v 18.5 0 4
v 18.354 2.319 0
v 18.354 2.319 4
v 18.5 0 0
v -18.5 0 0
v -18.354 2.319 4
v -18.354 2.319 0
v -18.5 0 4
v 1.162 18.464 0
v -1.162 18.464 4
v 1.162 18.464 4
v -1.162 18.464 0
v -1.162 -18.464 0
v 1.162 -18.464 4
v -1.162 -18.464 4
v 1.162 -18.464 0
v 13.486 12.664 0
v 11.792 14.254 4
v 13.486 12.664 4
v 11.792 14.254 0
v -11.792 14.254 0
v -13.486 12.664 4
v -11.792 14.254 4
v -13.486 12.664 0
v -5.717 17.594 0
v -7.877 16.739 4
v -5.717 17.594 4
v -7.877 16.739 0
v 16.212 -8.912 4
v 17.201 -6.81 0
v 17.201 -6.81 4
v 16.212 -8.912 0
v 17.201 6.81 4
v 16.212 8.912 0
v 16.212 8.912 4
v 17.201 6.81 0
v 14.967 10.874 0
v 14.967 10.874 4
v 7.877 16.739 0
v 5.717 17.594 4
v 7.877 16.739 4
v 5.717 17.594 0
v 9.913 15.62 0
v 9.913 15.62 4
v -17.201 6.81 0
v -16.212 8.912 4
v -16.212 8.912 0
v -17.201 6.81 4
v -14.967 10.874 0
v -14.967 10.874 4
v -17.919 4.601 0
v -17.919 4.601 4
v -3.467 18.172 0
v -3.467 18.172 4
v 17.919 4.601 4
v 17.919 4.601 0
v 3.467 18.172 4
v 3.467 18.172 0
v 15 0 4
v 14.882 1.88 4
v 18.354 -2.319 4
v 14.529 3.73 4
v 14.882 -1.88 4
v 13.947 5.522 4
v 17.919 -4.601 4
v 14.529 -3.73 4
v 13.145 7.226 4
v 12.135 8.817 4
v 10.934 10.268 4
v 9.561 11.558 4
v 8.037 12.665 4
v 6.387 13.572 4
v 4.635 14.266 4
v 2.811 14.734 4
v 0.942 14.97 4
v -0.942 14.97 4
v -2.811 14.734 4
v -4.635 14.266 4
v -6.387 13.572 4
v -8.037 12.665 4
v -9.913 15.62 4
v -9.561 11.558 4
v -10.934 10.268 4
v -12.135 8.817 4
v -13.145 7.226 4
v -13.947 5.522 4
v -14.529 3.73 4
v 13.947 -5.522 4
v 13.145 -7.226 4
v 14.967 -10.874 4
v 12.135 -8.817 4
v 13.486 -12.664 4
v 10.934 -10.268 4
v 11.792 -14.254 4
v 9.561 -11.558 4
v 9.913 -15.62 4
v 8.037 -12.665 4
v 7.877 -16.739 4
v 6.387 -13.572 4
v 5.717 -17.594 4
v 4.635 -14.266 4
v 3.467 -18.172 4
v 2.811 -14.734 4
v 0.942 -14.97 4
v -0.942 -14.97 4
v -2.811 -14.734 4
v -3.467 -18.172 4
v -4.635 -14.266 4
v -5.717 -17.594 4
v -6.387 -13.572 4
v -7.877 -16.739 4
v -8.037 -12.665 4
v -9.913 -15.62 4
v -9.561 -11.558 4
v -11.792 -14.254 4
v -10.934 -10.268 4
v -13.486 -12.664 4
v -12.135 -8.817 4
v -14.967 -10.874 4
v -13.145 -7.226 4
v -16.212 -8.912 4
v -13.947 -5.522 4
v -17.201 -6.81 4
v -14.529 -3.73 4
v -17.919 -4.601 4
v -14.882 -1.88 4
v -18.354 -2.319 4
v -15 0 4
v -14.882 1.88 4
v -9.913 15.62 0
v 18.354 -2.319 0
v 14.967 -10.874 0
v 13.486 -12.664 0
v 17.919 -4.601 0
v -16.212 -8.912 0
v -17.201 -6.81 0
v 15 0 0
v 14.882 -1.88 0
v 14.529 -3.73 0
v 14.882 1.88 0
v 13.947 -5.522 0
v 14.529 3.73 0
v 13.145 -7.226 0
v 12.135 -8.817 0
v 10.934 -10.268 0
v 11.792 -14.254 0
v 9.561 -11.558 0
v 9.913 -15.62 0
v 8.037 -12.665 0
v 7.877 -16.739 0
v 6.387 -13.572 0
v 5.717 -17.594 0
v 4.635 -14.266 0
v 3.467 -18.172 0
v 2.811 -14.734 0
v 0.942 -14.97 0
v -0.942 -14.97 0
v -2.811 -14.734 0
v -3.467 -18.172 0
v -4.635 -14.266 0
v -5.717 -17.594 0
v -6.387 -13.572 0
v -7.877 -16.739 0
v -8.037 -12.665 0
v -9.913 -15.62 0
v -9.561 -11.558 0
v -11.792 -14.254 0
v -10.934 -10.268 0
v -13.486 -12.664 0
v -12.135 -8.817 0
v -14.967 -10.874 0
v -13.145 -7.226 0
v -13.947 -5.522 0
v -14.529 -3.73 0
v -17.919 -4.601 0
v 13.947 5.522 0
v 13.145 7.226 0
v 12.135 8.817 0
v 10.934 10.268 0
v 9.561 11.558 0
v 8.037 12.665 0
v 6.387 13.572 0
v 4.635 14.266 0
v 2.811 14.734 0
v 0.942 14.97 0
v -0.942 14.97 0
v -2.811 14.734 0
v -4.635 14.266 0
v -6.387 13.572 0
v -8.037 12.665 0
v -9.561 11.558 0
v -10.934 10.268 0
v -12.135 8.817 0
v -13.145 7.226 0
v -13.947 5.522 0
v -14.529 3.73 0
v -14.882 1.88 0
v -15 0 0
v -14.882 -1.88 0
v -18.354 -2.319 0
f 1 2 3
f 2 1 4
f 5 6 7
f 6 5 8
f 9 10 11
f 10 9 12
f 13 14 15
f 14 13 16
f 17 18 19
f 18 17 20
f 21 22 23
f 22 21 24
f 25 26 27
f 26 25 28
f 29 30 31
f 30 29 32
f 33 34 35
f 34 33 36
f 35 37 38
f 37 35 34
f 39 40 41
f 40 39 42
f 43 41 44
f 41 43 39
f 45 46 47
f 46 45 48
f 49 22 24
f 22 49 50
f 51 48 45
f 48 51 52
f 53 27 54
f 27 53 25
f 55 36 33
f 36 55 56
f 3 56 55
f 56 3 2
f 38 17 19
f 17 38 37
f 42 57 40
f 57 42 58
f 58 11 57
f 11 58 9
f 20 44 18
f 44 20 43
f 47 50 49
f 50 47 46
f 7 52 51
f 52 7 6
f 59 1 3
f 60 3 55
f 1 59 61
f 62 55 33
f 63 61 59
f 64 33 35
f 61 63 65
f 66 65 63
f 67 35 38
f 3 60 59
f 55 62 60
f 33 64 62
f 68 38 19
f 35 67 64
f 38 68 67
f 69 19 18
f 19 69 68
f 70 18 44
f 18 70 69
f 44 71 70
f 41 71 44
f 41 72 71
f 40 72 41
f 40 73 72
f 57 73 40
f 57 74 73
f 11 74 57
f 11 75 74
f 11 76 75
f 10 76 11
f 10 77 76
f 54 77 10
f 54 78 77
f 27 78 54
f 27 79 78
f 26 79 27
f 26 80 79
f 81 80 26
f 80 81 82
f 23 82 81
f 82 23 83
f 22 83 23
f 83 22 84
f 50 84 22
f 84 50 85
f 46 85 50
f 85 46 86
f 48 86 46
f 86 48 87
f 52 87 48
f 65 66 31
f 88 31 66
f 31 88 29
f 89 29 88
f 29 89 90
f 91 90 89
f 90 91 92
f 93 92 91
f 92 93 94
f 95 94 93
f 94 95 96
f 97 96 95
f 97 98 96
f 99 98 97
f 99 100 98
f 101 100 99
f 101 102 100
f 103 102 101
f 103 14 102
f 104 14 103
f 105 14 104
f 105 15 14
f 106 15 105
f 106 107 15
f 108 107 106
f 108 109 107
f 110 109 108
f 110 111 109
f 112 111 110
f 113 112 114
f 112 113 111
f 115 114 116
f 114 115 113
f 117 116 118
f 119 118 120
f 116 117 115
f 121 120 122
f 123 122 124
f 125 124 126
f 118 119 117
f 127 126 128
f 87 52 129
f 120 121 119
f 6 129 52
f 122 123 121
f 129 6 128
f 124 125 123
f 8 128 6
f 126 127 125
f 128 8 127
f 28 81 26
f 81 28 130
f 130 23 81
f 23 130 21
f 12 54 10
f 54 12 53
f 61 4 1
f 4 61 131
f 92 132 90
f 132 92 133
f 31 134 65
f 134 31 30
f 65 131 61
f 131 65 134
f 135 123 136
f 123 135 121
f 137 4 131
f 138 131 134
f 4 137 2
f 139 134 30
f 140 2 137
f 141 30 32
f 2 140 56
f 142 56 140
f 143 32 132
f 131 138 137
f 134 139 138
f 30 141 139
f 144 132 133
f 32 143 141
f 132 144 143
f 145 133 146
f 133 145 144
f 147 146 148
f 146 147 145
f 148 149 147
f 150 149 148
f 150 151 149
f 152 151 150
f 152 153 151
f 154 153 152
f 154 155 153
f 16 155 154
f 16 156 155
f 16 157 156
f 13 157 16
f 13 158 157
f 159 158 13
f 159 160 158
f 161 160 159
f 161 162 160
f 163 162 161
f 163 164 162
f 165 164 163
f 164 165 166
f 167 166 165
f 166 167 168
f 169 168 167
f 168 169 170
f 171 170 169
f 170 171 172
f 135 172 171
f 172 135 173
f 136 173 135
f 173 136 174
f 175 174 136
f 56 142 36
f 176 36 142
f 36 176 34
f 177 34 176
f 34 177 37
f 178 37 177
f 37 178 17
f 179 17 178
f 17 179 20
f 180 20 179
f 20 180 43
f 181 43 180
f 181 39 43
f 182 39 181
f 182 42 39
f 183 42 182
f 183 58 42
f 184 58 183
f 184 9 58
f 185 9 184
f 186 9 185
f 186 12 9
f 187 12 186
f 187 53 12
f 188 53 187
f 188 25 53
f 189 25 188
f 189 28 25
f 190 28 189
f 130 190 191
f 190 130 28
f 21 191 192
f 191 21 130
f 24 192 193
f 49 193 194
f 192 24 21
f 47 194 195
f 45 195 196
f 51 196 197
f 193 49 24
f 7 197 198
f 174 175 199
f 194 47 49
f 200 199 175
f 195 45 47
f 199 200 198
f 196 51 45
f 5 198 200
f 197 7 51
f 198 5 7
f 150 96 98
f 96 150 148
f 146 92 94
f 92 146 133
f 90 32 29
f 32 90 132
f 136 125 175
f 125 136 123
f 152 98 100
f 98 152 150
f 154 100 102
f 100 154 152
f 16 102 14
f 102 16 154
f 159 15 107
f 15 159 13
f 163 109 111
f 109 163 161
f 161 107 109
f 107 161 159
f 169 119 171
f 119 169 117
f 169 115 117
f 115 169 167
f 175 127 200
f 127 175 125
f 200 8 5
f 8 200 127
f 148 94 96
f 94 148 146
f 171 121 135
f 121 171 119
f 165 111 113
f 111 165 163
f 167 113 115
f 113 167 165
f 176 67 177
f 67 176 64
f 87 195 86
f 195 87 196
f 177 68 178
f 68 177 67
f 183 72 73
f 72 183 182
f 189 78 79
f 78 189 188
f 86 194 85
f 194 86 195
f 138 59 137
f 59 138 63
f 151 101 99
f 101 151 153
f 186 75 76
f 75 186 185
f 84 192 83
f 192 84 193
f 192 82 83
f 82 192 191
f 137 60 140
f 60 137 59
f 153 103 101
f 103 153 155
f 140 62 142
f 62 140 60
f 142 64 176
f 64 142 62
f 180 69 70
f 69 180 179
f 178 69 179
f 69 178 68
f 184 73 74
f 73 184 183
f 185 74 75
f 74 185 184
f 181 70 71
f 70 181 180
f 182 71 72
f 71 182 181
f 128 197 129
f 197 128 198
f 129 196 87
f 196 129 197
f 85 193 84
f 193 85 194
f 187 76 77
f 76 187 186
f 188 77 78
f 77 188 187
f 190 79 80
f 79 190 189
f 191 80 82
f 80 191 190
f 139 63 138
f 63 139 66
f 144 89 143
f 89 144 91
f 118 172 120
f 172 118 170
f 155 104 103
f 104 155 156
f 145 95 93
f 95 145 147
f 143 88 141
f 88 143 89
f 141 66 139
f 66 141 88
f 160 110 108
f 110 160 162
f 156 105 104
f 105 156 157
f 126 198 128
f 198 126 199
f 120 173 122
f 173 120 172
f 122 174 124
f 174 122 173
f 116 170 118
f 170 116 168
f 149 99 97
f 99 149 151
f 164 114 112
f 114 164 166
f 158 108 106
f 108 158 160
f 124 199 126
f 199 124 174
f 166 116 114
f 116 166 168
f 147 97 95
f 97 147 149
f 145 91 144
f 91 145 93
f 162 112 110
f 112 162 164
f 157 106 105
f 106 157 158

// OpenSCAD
$fn = 50;


difference() {
	union() {
		cylinder(h = 4, r = 18.5000000000);
	}
	union() {
		cylinder(h = 4, r = 15.0000000000);
	}
}
